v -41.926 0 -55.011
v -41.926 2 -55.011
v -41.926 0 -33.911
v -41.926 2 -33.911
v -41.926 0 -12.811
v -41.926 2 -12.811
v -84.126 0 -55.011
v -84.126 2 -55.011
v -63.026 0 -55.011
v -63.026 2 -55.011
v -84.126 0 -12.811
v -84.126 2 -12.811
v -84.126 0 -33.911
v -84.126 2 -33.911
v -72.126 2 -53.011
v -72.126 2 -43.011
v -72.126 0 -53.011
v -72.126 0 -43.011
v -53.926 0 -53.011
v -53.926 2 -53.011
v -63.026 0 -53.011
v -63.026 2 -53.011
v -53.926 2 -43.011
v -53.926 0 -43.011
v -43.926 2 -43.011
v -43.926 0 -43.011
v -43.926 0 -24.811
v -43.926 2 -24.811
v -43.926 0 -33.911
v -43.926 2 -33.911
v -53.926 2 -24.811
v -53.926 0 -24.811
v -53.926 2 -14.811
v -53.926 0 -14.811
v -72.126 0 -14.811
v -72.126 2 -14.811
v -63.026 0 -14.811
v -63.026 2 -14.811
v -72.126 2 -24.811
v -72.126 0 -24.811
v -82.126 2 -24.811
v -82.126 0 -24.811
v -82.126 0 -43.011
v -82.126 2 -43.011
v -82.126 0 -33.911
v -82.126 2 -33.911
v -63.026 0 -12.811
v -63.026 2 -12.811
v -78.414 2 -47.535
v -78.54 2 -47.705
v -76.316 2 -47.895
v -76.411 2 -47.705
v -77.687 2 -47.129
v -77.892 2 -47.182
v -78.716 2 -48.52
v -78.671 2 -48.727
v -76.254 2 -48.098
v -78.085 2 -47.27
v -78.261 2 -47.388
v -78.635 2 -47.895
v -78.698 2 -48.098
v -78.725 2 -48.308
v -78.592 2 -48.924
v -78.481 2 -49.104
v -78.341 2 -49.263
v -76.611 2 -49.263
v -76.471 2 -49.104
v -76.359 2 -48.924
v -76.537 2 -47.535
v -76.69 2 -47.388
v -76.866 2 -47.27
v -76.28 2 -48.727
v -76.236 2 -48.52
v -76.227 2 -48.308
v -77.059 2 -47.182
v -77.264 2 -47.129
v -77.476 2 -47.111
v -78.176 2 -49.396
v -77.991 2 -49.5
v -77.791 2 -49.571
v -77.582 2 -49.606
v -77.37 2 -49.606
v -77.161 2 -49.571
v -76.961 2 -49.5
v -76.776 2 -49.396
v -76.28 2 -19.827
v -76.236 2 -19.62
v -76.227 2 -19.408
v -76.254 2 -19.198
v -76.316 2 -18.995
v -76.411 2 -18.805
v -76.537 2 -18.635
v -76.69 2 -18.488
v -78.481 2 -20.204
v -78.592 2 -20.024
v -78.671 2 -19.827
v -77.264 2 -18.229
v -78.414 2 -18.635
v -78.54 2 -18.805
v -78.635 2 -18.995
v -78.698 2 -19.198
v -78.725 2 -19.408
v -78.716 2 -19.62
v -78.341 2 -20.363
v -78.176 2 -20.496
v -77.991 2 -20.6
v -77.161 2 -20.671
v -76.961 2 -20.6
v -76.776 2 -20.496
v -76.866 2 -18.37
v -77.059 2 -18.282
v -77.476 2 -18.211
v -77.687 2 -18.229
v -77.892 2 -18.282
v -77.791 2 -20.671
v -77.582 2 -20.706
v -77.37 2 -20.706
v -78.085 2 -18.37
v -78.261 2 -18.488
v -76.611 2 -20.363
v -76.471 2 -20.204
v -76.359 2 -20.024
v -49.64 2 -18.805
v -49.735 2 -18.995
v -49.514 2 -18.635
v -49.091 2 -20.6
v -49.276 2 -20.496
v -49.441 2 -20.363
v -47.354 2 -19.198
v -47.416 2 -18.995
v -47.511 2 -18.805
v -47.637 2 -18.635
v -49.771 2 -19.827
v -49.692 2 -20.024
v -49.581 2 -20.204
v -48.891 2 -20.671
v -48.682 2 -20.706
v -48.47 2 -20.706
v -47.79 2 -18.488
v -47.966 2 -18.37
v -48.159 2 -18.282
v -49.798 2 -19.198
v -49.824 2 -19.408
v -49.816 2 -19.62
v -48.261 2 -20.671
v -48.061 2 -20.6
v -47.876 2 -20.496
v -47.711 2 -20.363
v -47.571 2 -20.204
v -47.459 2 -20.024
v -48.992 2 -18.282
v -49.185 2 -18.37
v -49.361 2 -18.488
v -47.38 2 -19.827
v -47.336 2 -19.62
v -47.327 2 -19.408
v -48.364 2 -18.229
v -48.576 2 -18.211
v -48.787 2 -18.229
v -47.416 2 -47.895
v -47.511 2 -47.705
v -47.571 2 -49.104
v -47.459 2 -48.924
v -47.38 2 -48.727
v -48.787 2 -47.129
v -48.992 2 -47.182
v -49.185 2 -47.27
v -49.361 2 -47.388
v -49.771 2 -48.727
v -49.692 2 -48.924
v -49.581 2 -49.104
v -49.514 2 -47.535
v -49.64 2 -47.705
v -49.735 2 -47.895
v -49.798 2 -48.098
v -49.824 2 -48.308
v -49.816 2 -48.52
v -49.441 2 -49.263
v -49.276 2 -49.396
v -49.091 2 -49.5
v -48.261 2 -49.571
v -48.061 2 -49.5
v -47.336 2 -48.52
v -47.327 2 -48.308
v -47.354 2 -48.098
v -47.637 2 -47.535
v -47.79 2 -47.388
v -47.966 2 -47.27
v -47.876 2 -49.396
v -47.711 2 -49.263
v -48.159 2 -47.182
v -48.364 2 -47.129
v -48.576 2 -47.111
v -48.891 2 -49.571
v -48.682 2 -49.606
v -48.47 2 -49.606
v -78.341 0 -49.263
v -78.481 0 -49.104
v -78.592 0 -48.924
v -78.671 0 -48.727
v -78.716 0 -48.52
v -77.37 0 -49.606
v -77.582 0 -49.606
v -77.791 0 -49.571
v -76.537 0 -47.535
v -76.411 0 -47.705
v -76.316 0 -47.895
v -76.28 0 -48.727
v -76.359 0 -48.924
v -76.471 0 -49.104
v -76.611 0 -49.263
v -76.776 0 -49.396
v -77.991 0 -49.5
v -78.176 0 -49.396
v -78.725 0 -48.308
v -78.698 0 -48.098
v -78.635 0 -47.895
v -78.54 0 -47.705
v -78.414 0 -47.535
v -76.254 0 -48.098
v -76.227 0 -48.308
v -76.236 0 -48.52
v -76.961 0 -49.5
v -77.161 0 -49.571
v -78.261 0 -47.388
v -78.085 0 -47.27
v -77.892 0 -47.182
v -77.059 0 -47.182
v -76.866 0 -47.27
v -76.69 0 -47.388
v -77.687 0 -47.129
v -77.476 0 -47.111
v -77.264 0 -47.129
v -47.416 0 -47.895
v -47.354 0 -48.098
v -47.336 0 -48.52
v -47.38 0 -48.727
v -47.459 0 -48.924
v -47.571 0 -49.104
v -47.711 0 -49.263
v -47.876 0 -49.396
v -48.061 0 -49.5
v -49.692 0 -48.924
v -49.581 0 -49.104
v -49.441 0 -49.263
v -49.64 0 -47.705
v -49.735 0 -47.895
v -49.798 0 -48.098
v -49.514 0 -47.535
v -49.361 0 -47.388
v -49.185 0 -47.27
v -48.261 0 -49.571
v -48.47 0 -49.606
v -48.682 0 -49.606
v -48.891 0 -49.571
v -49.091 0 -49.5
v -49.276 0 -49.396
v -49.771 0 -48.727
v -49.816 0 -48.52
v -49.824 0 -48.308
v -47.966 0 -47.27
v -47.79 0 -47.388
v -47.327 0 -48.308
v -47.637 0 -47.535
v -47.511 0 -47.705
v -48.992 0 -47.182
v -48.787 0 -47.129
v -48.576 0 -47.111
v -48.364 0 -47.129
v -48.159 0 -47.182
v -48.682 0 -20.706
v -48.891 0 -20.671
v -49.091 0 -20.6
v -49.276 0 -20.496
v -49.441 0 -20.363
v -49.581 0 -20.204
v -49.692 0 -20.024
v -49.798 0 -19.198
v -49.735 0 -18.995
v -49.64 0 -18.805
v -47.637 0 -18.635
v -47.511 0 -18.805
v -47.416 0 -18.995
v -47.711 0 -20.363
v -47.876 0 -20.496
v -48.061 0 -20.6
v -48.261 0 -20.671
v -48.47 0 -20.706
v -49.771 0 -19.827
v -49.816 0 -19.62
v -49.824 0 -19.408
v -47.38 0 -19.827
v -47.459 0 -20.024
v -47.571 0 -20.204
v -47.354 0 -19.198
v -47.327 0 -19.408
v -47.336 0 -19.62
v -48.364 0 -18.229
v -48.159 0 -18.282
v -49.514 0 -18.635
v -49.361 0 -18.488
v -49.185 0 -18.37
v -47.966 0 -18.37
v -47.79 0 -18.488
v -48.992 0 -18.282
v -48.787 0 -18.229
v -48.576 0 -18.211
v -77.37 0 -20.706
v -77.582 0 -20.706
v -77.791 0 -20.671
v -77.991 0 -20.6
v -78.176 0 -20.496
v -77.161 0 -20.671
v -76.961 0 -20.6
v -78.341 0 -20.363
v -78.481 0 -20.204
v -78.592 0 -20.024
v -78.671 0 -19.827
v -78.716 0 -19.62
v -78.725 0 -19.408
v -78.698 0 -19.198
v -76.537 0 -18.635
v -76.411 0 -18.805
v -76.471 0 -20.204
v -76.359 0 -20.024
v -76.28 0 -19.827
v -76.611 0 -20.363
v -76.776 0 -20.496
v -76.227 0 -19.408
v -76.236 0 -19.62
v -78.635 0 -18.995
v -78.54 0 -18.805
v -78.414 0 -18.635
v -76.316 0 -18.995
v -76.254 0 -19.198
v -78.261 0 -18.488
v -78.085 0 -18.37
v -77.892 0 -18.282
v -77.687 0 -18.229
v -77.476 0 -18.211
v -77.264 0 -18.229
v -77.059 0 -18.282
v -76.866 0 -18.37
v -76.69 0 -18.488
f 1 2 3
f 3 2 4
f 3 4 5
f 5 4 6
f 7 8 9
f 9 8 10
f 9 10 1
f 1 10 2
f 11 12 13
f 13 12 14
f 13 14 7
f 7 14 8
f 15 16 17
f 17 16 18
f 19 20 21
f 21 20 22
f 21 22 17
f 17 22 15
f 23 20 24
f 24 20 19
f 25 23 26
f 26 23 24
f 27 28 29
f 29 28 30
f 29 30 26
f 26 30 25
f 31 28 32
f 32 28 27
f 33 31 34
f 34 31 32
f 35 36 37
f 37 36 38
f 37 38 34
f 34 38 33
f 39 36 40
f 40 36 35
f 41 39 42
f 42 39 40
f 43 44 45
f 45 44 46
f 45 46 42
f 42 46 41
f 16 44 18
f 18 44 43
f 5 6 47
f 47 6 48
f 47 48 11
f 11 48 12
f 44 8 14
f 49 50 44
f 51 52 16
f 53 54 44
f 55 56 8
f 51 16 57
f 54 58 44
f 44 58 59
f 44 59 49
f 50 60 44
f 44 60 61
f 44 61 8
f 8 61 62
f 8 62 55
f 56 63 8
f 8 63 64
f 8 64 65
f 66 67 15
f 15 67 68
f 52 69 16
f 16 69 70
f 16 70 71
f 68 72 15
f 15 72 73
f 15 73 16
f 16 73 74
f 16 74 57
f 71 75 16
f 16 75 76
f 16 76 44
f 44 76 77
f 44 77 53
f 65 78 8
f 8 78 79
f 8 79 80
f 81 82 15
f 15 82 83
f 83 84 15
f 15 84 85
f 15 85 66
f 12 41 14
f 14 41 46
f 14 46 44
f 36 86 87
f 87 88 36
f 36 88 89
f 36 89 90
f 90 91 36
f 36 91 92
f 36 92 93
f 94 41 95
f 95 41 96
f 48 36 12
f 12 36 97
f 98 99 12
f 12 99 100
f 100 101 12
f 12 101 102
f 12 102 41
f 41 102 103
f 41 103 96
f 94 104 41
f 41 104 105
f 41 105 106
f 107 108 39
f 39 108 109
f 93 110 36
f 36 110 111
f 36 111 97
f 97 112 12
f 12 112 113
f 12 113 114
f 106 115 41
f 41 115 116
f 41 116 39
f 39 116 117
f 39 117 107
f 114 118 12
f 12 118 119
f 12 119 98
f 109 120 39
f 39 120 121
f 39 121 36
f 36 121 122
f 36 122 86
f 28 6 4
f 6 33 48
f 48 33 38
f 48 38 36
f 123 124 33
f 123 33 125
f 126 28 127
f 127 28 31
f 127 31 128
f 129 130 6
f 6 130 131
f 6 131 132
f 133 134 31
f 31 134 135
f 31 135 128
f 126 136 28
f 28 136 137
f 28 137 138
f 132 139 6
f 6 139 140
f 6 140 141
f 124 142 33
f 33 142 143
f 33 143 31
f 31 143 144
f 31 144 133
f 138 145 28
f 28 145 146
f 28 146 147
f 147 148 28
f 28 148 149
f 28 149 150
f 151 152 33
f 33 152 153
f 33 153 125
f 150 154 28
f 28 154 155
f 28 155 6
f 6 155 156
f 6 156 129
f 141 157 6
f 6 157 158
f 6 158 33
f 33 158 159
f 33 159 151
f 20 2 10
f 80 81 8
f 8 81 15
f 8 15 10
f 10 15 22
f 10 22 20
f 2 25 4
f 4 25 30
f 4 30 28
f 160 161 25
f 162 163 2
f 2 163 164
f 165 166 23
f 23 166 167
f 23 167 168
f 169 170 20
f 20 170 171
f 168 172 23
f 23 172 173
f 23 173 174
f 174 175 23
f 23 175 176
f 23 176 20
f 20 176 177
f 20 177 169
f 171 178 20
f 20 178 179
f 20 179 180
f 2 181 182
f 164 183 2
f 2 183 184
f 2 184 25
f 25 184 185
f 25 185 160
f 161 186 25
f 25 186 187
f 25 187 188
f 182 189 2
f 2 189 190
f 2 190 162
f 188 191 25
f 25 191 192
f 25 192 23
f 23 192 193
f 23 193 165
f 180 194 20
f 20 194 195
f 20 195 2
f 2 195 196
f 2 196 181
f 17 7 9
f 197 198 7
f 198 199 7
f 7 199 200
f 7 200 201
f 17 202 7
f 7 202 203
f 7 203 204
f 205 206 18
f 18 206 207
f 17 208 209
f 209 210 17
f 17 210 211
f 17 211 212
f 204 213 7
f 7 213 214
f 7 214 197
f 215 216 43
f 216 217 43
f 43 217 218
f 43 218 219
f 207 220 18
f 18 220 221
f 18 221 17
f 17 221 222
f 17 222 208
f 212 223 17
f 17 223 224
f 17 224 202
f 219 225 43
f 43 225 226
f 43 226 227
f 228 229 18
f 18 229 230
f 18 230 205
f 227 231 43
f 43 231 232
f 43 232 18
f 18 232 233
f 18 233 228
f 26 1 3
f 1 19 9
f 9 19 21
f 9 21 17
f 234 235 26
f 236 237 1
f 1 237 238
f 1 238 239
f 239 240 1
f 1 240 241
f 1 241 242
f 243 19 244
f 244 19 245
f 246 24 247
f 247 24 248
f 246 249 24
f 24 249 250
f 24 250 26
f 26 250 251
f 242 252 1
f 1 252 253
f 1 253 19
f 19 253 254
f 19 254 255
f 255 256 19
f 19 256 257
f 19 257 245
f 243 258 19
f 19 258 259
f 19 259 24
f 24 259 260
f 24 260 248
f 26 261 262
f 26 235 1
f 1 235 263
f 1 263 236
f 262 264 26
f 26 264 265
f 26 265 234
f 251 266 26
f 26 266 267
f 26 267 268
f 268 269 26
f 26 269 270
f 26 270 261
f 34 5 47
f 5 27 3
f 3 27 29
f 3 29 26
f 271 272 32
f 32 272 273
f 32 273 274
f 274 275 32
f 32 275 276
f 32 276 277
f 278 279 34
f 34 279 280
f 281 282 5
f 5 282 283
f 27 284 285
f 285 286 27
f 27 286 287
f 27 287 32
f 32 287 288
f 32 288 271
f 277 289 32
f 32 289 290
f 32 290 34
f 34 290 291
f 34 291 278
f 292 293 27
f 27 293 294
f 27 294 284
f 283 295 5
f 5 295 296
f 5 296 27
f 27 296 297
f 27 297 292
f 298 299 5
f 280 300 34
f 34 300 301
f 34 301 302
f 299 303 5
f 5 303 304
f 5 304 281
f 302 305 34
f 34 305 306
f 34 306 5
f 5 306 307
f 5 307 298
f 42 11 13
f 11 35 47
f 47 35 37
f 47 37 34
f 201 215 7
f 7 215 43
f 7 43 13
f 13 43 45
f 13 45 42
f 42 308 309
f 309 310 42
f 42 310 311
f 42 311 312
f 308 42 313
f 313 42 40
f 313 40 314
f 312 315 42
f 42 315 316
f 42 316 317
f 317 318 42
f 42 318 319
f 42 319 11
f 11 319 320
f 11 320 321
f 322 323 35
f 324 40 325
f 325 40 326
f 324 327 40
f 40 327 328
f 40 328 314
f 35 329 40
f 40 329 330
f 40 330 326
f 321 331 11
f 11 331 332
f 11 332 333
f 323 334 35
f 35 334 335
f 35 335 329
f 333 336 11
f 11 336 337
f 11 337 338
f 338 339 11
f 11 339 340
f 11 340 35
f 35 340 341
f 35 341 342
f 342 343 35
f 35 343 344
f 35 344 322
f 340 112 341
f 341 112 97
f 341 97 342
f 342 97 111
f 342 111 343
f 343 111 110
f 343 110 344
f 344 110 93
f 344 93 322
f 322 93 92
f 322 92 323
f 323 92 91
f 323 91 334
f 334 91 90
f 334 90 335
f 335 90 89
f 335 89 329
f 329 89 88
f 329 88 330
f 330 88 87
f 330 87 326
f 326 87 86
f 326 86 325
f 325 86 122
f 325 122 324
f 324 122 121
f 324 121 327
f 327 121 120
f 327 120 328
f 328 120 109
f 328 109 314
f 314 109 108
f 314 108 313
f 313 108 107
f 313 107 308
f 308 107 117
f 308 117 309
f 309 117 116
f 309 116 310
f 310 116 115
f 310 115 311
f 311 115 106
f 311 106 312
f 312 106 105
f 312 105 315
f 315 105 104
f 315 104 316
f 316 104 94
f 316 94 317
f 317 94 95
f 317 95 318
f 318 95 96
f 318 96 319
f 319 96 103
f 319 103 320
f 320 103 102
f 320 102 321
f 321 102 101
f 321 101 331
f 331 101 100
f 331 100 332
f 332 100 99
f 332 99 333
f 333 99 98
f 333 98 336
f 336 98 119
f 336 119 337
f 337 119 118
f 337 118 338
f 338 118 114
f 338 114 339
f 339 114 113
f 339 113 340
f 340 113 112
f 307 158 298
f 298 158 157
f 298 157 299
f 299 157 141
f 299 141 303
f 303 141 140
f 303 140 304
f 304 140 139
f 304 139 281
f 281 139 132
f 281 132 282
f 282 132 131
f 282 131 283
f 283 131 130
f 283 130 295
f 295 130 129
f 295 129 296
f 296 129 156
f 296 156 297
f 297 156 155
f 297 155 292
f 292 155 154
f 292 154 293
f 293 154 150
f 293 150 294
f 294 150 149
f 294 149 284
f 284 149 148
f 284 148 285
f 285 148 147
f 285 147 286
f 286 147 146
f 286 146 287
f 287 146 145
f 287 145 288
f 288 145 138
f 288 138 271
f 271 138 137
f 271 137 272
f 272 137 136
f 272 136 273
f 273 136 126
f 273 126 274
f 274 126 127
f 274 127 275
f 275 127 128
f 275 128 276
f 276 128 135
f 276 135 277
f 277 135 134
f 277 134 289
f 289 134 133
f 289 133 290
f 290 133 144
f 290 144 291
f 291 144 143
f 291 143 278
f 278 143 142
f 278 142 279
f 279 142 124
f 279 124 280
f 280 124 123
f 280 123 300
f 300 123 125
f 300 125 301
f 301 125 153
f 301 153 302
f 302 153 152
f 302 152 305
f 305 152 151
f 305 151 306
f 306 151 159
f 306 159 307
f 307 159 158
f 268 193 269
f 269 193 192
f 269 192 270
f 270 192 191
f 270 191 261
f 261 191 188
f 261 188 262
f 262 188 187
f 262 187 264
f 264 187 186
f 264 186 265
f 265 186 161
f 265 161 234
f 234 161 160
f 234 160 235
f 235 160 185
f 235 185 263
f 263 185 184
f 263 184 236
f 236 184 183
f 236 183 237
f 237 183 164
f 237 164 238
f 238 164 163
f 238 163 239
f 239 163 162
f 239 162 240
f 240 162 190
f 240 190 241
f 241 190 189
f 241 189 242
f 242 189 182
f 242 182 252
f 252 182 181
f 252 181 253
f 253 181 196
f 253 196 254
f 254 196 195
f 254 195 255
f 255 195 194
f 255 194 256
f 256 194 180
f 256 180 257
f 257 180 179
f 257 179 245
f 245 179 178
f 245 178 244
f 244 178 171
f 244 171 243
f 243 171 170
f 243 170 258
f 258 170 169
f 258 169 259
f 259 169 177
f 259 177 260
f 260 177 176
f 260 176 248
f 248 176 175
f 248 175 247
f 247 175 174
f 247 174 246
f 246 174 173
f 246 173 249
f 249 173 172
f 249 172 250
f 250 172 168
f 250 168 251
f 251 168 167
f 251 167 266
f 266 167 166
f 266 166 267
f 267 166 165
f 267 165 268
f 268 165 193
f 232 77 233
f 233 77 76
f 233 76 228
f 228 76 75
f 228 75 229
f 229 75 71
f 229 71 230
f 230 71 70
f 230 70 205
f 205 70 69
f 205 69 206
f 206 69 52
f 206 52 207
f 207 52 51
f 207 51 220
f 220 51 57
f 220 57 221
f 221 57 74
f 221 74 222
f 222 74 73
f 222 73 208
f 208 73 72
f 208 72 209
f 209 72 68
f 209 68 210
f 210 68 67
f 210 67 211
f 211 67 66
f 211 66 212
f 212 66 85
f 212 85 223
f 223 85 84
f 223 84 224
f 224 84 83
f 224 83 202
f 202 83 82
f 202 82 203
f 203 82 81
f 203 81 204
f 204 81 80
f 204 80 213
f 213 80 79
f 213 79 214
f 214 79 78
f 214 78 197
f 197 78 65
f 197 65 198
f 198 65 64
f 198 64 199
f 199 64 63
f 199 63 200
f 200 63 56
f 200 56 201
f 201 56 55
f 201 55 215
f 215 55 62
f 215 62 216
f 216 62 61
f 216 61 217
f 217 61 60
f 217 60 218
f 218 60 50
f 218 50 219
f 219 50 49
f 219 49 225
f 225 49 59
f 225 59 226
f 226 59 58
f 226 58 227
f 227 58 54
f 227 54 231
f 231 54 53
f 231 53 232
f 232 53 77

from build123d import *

# Parameters (mm, degrees)
SKETCH1_W             = 42.2
SKETCH1_H             = 42.2
SKETCH1_W_2           = 38.2
SKETCH1_H_2           = 38.2
SKETCH1_W_3           = 10
SKETCH1_H_3           = 10
BOSS_EXTRUDE1_DEPTH   = 2
M3X0_5_TAPPED_HOLE2_D = 2.5


with BuildPart() as part:
    # Sketch1 → Boss-Extrude1 (new body)
    # profile 1 of 5: a face of its own
    with BuildSketch(Plane(origin=(0, 0, 0), x_dir=(1, 0, 0), z_dir=(0, 1, 0))):
        with Locations((-63.025626343, 33.9108558)):
            Rectangle(SKETCH1_W, SKETCH1_H)
        with Locations((-63.025626343, 33.9108558)):
            Rectangle(SKETCH1_W_2, SKETCH1_H_2, mode=Mode.SUBTRACT)
    # profile 2 of 5: a face of its own
    with BuildSketch(Plane(origin=(0, 0, 0), x_dir=(1, 0, 0), z_dir=(0, 1, 0))):
        with Locations((-77.125626343, 48.0108558)):
            Rectangle(SKETCH1_W_3, SKETCH1_H_3)
    # profile 3 of 5: a face of its own
    with BuildSketch(Plane(origin=(0, 0, 0), x_dir=(1, 0, 0), z_dir=(0, 1, 0))):
        with Locations((-48.925626343, 48.0108558)):
            Rectangle(SKETCH1_W_3, SKETCH1_H_3)
    # profile 4 of 5: a face of its own
    with BuildSketch(Plane(origin=(0, 0, 0), x_dir=(1, 0, 0), z_dir=(0, 1, 0))):
        with Locations((-48.925626343, 19.8108558)):
            Rectangle(SKETCH1_W_3, SKETCH1_H_3)
    # profile 5 of 5: a face of its own
    with BuildSketch(Plane(origin=(0, 0, 0), x_dir=(1, 0, 0), z_dir=(0, 1, 0))):
        with Locations((-77.125626343, 19.8108558)):
            Rectangle(SKETCH1_W_3, SKETCH1_H_3)
    extrude(amount=BOSS_EXTRUDE1_DEPTH)

    # M3x0.5 Tapped Hole2 (through all)
    with Locations(Plane(origin=(0, 2, 0), x_dir=(1, 0, 0), z_dir=(0, 1, 0))):
        with Locations((-77.475626343, 48.3608558), (-48.575626343, 48.3608558), (-48.575626343, 19.4608558), (-77.475626343, 19.4608558)):
            Hole(M3X0_5_TAPPED_HOLE2_D / 2)


solid = part.part
